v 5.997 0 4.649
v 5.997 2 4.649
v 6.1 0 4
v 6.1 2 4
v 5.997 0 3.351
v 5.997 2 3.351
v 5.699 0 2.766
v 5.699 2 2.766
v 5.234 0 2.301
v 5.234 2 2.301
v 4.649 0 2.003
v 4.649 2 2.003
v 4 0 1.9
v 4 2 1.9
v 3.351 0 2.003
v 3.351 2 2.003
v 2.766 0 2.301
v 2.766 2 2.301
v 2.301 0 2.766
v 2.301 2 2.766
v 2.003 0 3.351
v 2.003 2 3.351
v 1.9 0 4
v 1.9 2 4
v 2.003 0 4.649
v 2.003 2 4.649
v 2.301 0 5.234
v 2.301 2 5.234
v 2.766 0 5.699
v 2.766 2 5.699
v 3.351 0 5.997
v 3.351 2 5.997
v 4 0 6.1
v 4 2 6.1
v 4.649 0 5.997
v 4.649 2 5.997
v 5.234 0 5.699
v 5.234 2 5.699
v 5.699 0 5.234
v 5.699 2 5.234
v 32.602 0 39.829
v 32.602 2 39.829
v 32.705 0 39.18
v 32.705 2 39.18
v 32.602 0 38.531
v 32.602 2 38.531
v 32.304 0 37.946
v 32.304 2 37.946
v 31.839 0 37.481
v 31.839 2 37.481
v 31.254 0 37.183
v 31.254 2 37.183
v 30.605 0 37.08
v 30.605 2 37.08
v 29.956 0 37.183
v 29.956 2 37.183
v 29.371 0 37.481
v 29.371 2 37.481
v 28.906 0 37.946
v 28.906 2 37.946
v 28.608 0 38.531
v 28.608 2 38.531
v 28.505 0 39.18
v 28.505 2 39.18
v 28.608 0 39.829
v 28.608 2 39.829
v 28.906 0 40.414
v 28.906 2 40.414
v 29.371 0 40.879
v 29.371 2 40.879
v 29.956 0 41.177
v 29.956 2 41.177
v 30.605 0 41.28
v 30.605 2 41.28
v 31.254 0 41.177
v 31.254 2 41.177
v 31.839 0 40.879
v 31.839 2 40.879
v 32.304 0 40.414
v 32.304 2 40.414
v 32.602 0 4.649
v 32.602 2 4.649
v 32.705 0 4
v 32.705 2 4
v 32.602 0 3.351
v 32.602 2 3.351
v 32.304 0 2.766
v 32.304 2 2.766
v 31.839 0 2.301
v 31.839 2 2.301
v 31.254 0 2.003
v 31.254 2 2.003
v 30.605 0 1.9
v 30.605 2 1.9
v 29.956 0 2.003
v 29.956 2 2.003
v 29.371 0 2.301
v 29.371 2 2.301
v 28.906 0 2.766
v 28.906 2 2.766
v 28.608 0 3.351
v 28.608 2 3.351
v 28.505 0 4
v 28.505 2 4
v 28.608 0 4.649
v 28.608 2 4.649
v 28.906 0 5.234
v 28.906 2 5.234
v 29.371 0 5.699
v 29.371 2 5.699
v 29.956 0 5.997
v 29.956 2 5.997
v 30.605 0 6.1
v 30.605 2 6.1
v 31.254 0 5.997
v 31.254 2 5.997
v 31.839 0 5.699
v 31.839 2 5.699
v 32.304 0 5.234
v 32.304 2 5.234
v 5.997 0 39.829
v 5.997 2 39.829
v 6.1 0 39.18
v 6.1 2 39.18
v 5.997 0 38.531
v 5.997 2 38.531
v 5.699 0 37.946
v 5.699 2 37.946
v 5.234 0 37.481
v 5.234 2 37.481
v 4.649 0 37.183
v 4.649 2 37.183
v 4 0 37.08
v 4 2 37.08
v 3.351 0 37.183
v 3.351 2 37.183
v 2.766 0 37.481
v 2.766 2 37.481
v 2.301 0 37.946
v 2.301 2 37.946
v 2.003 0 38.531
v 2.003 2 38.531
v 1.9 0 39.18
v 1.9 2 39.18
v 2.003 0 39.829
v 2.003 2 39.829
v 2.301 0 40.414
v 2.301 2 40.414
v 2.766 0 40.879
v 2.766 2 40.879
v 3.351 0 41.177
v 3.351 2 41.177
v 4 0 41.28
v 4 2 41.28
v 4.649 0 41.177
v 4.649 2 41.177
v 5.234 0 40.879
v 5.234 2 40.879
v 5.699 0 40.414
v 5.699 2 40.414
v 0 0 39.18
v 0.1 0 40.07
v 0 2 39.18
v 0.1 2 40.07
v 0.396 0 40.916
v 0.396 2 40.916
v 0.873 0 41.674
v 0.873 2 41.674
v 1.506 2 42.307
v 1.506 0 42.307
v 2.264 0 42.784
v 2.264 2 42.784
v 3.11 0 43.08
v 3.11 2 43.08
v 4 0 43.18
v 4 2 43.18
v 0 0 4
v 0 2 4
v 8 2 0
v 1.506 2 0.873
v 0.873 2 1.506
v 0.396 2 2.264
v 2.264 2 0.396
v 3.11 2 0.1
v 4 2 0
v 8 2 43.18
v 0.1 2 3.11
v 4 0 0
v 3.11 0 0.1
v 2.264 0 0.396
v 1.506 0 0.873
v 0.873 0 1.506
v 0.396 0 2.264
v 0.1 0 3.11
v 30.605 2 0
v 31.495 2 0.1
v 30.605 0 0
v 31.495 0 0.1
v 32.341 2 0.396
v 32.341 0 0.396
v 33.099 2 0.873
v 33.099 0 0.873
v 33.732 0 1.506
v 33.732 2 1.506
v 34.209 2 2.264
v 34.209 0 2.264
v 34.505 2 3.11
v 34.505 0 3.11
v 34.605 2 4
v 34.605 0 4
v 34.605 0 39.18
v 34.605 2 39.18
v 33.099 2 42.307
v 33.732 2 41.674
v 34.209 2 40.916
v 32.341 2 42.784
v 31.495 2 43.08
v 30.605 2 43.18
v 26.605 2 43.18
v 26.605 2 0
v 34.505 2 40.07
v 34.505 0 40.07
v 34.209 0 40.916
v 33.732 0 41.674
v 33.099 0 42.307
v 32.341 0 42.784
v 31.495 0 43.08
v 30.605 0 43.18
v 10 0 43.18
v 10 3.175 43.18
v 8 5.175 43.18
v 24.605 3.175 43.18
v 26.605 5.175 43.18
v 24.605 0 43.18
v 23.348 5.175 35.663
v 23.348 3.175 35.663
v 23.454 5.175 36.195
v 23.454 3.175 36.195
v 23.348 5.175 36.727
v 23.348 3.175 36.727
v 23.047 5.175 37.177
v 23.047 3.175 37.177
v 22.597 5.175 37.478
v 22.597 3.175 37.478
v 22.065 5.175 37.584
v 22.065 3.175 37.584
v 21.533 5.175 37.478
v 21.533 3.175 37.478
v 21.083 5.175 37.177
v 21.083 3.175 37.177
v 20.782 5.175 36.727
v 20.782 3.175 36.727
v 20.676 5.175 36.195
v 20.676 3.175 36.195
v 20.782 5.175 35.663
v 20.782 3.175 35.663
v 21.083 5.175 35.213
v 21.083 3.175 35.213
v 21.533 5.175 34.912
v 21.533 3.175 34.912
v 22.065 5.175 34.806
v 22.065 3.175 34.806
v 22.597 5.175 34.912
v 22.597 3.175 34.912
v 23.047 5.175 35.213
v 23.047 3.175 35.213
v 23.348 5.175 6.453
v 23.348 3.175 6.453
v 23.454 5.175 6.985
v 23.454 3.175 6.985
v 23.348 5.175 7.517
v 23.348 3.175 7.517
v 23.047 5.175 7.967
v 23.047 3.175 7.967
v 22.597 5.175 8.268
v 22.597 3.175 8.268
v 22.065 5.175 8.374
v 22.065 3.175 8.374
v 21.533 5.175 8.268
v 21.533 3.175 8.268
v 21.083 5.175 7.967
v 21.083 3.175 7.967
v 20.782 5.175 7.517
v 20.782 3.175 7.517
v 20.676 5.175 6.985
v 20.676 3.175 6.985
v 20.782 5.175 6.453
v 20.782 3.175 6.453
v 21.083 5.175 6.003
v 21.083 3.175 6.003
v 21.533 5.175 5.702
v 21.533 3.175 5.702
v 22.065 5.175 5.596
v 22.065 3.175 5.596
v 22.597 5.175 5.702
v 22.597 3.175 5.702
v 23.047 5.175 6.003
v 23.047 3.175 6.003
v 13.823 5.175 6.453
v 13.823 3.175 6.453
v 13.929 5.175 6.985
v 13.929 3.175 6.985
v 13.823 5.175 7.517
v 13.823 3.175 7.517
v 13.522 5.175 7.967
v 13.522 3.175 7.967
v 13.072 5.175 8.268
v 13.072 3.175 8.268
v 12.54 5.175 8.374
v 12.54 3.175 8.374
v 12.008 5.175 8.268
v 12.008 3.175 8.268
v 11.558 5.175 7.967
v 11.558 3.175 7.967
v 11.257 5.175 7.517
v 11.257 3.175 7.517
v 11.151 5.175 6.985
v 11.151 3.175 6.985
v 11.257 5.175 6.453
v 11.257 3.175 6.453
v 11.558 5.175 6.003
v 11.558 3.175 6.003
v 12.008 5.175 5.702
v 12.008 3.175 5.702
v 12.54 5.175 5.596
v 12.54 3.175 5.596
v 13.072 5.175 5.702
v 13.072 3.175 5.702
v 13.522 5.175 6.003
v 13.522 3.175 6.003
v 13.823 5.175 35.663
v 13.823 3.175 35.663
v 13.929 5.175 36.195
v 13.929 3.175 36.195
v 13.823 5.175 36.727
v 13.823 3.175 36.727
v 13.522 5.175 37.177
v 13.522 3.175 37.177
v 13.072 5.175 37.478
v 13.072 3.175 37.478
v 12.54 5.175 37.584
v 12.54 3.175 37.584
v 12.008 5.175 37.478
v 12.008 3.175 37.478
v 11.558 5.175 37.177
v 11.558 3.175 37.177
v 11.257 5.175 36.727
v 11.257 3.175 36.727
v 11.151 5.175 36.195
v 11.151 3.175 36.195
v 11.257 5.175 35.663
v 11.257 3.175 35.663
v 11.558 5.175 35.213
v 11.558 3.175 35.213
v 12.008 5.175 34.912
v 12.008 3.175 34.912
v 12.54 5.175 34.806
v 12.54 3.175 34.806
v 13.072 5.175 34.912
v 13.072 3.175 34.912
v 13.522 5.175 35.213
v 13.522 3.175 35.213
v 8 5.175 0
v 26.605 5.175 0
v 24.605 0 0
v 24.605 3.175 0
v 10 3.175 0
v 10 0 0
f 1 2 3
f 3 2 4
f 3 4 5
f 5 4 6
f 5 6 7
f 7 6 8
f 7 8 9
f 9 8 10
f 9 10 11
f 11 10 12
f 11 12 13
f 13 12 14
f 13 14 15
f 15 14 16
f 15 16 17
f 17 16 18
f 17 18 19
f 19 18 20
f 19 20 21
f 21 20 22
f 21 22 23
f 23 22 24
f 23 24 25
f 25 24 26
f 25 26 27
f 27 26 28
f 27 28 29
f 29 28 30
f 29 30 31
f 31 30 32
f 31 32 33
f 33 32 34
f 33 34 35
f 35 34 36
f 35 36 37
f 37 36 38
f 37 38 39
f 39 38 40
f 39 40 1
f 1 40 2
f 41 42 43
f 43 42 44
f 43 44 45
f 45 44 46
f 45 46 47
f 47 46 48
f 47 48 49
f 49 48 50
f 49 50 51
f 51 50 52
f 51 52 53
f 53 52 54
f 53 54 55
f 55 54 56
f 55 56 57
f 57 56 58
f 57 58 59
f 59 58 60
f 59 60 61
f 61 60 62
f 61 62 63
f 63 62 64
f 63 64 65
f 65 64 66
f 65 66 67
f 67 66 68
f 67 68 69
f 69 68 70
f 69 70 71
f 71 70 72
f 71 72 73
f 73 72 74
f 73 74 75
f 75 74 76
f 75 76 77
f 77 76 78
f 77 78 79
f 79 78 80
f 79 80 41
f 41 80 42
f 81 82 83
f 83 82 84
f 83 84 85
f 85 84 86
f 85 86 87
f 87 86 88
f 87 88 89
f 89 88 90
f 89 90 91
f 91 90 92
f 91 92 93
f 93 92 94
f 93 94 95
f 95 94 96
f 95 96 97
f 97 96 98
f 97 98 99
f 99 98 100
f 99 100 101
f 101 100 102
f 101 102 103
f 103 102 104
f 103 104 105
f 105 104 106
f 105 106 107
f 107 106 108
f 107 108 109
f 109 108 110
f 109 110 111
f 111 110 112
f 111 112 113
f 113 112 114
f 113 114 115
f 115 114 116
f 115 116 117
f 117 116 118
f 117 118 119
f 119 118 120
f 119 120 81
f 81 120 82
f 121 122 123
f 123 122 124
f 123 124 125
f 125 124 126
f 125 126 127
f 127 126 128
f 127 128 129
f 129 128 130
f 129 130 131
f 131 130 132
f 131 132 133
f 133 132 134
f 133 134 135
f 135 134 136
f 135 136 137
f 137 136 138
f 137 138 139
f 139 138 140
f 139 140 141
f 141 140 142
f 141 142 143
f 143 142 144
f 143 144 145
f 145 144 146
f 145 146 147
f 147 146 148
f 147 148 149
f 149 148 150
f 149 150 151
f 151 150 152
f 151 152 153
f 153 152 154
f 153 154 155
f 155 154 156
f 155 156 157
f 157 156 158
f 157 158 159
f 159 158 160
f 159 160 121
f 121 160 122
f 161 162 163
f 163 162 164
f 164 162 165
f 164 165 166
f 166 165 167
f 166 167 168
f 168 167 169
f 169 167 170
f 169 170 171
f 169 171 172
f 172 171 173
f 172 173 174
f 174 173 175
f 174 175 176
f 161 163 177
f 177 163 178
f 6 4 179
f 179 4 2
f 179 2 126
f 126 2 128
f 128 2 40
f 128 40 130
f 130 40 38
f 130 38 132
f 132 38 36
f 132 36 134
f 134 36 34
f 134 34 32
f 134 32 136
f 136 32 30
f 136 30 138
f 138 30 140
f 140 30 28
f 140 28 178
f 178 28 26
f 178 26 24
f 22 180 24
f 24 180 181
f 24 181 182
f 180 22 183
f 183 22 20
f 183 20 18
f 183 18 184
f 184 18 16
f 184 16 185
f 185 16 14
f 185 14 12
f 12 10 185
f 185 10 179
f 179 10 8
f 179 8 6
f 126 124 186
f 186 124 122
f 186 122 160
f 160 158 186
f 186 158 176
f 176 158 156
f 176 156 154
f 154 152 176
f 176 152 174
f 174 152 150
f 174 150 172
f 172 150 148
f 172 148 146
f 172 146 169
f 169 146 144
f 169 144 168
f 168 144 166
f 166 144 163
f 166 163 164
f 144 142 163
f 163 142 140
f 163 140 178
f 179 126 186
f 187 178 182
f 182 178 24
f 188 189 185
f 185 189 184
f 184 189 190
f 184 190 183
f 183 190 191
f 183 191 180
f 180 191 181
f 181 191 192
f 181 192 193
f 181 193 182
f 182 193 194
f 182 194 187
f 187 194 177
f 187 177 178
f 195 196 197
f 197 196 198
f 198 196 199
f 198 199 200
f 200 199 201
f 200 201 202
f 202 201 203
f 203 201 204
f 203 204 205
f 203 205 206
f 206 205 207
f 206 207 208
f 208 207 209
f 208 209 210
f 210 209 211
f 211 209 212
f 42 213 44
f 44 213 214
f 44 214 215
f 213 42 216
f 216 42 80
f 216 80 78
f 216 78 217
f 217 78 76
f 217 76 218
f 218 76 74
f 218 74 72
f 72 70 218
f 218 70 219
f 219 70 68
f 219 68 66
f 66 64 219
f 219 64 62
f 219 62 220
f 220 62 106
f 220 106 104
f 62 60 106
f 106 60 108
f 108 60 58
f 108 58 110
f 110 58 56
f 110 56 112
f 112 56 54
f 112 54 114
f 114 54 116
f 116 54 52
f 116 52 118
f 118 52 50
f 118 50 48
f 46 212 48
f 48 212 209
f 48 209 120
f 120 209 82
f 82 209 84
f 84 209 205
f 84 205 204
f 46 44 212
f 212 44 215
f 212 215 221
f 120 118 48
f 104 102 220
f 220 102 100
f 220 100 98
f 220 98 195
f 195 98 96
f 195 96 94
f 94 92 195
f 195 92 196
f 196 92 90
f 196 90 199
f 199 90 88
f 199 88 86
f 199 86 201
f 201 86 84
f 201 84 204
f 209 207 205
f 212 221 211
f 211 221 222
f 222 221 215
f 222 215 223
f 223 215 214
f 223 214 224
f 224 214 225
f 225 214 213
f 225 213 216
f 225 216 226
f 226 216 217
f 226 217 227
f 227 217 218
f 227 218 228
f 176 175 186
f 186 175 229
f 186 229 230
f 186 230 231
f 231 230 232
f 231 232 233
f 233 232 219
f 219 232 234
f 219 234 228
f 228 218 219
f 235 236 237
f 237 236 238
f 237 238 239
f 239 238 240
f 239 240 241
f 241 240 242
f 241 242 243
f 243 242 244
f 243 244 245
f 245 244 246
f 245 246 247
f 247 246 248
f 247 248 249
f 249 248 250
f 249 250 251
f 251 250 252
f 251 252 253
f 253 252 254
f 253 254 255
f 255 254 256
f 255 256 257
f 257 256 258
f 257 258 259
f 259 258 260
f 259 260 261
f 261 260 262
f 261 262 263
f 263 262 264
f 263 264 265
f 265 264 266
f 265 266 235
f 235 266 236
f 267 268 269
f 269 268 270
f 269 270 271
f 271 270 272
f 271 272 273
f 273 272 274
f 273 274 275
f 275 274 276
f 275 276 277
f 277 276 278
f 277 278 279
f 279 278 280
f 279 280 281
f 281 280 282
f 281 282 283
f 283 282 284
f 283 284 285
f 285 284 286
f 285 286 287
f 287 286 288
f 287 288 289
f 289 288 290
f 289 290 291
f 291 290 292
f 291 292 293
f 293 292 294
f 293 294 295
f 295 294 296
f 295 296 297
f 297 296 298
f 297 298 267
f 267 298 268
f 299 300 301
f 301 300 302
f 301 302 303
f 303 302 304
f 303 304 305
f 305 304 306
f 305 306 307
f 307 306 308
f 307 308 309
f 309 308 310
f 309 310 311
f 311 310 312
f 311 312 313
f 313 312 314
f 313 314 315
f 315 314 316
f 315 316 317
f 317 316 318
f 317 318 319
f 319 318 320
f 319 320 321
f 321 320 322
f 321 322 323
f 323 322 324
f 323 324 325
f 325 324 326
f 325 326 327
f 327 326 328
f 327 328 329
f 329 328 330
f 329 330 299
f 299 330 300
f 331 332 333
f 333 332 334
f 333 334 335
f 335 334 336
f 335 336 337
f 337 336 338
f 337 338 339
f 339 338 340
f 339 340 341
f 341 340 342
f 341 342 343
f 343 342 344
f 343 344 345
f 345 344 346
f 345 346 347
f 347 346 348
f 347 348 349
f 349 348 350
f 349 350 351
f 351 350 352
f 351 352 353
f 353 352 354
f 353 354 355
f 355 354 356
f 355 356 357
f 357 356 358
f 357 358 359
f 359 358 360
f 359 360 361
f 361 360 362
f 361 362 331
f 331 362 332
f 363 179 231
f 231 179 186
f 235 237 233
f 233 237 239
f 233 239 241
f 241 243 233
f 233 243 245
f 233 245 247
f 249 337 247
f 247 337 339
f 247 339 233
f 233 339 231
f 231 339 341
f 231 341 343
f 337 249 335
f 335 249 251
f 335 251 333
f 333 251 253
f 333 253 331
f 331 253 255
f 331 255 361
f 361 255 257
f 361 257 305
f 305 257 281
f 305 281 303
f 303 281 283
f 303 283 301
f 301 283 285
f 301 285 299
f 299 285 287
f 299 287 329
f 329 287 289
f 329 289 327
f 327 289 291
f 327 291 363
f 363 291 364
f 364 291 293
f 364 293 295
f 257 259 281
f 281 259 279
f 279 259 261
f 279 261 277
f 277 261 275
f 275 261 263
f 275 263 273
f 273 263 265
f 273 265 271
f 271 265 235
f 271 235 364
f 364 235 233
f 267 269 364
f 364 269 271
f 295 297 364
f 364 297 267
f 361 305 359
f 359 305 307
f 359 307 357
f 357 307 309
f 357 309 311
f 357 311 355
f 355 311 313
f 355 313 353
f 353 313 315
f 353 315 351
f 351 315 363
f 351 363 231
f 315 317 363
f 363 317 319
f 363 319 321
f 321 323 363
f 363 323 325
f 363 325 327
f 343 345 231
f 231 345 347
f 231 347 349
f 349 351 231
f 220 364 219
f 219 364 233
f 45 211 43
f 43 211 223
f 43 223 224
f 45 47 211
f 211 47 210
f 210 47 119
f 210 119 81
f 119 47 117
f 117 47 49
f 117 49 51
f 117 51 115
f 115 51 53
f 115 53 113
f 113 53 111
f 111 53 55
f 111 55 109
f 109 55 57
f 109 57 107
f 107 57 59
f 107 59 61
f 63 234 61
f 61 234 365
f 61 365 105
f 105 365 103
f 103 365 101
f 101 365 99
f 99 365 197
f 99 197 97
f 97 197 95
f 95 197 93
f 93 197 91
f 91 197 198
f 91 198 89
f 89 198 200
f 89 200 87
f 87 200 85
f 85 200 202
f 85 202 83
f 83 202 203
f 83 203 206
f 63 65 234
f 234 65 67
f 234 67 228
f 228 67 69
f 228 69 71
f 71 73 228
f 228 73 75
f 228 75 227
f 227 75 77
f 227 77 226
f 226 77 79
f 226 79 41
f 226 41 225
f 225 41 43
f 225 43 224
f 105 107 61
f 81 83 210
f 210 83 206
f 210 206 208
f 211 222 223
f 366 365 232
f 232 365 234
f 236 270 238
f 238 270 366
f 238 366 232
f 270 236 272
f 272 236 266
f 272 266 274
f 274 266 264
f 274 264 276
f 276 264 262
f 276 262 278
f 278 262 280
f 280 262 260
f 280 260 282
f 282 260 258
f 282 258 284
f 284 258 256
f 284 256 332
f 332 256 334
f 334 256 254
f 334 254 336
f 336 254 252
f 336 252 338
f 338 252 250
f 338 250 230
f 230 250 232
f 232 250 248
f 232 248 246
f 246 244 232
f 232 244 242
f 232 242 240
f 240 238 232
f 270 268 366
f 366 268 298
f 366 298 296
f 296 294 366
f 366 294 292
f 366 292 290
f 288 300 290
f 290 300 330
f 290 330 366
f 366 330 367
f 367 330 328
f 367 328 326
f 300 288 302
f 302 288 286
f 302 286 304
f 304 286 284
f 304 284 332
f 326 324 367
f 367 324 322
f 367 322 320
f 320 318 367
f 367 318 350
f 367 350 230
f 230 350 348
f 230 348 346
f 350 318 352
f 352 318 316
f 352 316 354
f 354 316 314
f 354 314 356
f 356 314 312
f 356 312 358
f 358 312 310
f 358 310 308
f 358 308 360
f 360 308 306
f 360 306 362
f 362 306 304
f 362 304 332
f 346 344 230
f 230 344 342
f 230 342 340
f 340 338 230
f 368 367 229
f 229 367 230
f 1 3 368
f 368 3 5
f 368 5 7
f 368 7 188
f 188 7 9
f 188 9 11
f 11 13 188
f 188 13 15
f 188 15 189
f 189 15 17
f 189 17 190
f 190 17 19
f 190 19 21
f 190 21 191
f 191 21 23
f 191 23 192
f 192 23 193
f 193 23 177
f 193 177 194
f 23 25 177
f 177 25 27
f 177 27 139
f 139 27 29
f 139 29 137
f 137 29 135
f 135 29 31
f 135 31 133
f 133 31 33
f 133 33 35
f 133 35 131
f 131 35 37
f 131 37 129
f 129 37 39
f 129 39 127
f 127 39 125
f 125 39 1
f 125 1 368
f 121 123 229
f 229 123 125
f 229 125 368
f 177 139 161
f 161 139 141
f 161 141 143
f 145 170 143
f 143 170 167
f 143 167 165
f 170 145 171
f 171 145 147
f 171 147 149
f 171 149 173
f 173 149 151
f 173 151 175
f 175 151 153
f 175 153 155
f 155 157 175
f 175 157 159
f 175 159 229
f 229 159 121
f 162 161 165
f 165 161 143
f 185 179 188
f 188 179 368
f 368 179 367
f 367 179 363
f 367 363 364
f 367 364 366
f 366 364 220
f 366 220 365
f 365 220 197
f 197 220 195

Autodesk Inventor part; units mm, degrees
ref_plane "YZ Plane" through (0, 0, 0) normal (1, 0, 0) x (0, 1, 0)
ref_plane "XZ Plane" through (0, 0, 0) normal (0, 1, 0) x (-1, 0, 0)
ref_plane "XY Plane" through (0, 0, 0) normal (0, 0, 1) x (1, 0, 0)
sketch "Sketch1" plane through (0, 0, 0) normal (0, 0, 1) x (1, 0, 0)
  line L0 (0, 0) -> (10, 0)
  line L1 (10, 0) -> (10, 3.175)
  line L2 (10, 3.175) -> (24.605, 3.175)
  line L3 (24.605, 3.175) -> (24.605, 0)
  line L4 (24.605, 0) -> (34.605, 0)
  line L5 (0, 2) -> (8, 2)
  line L6 (8, 2) -> (8, 5.175)
  line L7 (8, 5.175) -> (26.605, 5.175)
  line L8 (26.605, 5.175) -> (26.605, 2)
  line L9 (26.605, 2) -> (34.605, 2)
  line L10 (0, 2) -> (0, 0)
  line L11 (34.605, 0) -> (34.605, 2)
  dimension "d0" = 10
  dimension "d1" = 3.175
  dimension "d2" = 14.605
  dimension "d3" = 10
  dimension "d4" = 2
extrude "Extrusion1" add sketch "Sketch1" along normal blind 43.18
sketch "Sketch2" plane through (10, 3.175, 0) normal (0, -1, 0) x (1, 0, 0)
  line L0 (0, 0) -> (14.605, 0) projected
  line L1 (14.605, 0) -> (14.605, 43.18) projected
  line L2 (0, 43.18) -> (14.605, 43.18) projected
  line L3 (0, 0) -> (0, 43.18) projected
  line L4 (14.605, 0) -> (14.605, 43.18) projected
  line L5 (14.605, 0) -> (14.605, 6.985)
  line L6 (14.605, 6.985) -> (12.065, 6.985)
  circle A0 centre (12.065, 6.985) radius 1.3891
  line L7 (0, 0) -> (14.605, 0) projected
  line L8 (0, 0) -> (0, 6.985)
  line L9 (0, 0) -> (0, 43.18) projected
  line L10 (0, 6.985) -> (2.54, 6.985)
  circle A1 centre (2.54, 6.985) radius 1.3891
  line L11 (14.605, 43.18) -> (14.605, 36.195)
  line L12 (14.605, 36.195) -> (12.065, 36.195)
  circle A2 centre (12.065, 36.195) radius 1.3891
  line L13 (-10, 43.18) -> (0, 43.18) projected
  line L14 (0, 43.18) -> (0, 36.195)
  line L15 (0, 36.195) -> (2.54, 36.195)
  circle A3 centre (2.54, 36.195) radius 1.3891
  point P0 (-10, 0)
  dimension "d7" = 6.985
  dimension "d8" = 2.54
  dimension "d9" = 2.7781
  dimension "d10" = 6.985
  dimension "d11" = 2.54
  dimension "d12" = 2.7781
  dimension "d13" = 6.985
  dimension "d14" = 2.54
  dimension "d15" = 2.7781
  dimension "d16" = 6.985
  dimension "d17" = 2.54
  dimension "d18" = 2.7781
extrude "Extrusion2" cut sketch "Sketch2" against normal blind 43.18 contours A0 | A2 | A3 | A1
fillet "Fillet1" radius 4 4 edges at (34.605, 1, 43.18) (34.605, 1, 0) (0, 1, 0) (0, 1, 43.18)
sketch "Sketch4" plane through (26.605, 2, 43.18) normal (0, 1, 0) x (1, 0, 0)
  arc A0 (-26.605, 4) -> (-22.605, 0) centre (-22.605, 4) ccw projected
  arc A1 (-22.605, 43.18) -> (-26.605, 39.18) centre (-22.605, 39.18) ccw projected
  arc A2 (8, 39.18) -> (4, 43.18) centre (4, 39.18) ccw projected
  arc A3 (4, 0) -> (8, 4) centre (4, 4) ccw projected
  circle A4 centre (4, 4) radius 2.1
  circle A5 centre (4, 39.18) radius 2.1
  circle A6 centre (-22.605, 39.18) radius 2.1
  circle A7 centre (-22.605, 4) radius 2.1
  point P0 (-26.605, 43.18)
  dimension "d22" = 4.2
  dimension "d23" = 4.2
  dimension "d24" = 4.2
  dimension "d25" = 4.2
extrude "Extrusion3" cut sketch "Sketch4" against normal blind 43.18
properties part number "buckconverter-holder"
